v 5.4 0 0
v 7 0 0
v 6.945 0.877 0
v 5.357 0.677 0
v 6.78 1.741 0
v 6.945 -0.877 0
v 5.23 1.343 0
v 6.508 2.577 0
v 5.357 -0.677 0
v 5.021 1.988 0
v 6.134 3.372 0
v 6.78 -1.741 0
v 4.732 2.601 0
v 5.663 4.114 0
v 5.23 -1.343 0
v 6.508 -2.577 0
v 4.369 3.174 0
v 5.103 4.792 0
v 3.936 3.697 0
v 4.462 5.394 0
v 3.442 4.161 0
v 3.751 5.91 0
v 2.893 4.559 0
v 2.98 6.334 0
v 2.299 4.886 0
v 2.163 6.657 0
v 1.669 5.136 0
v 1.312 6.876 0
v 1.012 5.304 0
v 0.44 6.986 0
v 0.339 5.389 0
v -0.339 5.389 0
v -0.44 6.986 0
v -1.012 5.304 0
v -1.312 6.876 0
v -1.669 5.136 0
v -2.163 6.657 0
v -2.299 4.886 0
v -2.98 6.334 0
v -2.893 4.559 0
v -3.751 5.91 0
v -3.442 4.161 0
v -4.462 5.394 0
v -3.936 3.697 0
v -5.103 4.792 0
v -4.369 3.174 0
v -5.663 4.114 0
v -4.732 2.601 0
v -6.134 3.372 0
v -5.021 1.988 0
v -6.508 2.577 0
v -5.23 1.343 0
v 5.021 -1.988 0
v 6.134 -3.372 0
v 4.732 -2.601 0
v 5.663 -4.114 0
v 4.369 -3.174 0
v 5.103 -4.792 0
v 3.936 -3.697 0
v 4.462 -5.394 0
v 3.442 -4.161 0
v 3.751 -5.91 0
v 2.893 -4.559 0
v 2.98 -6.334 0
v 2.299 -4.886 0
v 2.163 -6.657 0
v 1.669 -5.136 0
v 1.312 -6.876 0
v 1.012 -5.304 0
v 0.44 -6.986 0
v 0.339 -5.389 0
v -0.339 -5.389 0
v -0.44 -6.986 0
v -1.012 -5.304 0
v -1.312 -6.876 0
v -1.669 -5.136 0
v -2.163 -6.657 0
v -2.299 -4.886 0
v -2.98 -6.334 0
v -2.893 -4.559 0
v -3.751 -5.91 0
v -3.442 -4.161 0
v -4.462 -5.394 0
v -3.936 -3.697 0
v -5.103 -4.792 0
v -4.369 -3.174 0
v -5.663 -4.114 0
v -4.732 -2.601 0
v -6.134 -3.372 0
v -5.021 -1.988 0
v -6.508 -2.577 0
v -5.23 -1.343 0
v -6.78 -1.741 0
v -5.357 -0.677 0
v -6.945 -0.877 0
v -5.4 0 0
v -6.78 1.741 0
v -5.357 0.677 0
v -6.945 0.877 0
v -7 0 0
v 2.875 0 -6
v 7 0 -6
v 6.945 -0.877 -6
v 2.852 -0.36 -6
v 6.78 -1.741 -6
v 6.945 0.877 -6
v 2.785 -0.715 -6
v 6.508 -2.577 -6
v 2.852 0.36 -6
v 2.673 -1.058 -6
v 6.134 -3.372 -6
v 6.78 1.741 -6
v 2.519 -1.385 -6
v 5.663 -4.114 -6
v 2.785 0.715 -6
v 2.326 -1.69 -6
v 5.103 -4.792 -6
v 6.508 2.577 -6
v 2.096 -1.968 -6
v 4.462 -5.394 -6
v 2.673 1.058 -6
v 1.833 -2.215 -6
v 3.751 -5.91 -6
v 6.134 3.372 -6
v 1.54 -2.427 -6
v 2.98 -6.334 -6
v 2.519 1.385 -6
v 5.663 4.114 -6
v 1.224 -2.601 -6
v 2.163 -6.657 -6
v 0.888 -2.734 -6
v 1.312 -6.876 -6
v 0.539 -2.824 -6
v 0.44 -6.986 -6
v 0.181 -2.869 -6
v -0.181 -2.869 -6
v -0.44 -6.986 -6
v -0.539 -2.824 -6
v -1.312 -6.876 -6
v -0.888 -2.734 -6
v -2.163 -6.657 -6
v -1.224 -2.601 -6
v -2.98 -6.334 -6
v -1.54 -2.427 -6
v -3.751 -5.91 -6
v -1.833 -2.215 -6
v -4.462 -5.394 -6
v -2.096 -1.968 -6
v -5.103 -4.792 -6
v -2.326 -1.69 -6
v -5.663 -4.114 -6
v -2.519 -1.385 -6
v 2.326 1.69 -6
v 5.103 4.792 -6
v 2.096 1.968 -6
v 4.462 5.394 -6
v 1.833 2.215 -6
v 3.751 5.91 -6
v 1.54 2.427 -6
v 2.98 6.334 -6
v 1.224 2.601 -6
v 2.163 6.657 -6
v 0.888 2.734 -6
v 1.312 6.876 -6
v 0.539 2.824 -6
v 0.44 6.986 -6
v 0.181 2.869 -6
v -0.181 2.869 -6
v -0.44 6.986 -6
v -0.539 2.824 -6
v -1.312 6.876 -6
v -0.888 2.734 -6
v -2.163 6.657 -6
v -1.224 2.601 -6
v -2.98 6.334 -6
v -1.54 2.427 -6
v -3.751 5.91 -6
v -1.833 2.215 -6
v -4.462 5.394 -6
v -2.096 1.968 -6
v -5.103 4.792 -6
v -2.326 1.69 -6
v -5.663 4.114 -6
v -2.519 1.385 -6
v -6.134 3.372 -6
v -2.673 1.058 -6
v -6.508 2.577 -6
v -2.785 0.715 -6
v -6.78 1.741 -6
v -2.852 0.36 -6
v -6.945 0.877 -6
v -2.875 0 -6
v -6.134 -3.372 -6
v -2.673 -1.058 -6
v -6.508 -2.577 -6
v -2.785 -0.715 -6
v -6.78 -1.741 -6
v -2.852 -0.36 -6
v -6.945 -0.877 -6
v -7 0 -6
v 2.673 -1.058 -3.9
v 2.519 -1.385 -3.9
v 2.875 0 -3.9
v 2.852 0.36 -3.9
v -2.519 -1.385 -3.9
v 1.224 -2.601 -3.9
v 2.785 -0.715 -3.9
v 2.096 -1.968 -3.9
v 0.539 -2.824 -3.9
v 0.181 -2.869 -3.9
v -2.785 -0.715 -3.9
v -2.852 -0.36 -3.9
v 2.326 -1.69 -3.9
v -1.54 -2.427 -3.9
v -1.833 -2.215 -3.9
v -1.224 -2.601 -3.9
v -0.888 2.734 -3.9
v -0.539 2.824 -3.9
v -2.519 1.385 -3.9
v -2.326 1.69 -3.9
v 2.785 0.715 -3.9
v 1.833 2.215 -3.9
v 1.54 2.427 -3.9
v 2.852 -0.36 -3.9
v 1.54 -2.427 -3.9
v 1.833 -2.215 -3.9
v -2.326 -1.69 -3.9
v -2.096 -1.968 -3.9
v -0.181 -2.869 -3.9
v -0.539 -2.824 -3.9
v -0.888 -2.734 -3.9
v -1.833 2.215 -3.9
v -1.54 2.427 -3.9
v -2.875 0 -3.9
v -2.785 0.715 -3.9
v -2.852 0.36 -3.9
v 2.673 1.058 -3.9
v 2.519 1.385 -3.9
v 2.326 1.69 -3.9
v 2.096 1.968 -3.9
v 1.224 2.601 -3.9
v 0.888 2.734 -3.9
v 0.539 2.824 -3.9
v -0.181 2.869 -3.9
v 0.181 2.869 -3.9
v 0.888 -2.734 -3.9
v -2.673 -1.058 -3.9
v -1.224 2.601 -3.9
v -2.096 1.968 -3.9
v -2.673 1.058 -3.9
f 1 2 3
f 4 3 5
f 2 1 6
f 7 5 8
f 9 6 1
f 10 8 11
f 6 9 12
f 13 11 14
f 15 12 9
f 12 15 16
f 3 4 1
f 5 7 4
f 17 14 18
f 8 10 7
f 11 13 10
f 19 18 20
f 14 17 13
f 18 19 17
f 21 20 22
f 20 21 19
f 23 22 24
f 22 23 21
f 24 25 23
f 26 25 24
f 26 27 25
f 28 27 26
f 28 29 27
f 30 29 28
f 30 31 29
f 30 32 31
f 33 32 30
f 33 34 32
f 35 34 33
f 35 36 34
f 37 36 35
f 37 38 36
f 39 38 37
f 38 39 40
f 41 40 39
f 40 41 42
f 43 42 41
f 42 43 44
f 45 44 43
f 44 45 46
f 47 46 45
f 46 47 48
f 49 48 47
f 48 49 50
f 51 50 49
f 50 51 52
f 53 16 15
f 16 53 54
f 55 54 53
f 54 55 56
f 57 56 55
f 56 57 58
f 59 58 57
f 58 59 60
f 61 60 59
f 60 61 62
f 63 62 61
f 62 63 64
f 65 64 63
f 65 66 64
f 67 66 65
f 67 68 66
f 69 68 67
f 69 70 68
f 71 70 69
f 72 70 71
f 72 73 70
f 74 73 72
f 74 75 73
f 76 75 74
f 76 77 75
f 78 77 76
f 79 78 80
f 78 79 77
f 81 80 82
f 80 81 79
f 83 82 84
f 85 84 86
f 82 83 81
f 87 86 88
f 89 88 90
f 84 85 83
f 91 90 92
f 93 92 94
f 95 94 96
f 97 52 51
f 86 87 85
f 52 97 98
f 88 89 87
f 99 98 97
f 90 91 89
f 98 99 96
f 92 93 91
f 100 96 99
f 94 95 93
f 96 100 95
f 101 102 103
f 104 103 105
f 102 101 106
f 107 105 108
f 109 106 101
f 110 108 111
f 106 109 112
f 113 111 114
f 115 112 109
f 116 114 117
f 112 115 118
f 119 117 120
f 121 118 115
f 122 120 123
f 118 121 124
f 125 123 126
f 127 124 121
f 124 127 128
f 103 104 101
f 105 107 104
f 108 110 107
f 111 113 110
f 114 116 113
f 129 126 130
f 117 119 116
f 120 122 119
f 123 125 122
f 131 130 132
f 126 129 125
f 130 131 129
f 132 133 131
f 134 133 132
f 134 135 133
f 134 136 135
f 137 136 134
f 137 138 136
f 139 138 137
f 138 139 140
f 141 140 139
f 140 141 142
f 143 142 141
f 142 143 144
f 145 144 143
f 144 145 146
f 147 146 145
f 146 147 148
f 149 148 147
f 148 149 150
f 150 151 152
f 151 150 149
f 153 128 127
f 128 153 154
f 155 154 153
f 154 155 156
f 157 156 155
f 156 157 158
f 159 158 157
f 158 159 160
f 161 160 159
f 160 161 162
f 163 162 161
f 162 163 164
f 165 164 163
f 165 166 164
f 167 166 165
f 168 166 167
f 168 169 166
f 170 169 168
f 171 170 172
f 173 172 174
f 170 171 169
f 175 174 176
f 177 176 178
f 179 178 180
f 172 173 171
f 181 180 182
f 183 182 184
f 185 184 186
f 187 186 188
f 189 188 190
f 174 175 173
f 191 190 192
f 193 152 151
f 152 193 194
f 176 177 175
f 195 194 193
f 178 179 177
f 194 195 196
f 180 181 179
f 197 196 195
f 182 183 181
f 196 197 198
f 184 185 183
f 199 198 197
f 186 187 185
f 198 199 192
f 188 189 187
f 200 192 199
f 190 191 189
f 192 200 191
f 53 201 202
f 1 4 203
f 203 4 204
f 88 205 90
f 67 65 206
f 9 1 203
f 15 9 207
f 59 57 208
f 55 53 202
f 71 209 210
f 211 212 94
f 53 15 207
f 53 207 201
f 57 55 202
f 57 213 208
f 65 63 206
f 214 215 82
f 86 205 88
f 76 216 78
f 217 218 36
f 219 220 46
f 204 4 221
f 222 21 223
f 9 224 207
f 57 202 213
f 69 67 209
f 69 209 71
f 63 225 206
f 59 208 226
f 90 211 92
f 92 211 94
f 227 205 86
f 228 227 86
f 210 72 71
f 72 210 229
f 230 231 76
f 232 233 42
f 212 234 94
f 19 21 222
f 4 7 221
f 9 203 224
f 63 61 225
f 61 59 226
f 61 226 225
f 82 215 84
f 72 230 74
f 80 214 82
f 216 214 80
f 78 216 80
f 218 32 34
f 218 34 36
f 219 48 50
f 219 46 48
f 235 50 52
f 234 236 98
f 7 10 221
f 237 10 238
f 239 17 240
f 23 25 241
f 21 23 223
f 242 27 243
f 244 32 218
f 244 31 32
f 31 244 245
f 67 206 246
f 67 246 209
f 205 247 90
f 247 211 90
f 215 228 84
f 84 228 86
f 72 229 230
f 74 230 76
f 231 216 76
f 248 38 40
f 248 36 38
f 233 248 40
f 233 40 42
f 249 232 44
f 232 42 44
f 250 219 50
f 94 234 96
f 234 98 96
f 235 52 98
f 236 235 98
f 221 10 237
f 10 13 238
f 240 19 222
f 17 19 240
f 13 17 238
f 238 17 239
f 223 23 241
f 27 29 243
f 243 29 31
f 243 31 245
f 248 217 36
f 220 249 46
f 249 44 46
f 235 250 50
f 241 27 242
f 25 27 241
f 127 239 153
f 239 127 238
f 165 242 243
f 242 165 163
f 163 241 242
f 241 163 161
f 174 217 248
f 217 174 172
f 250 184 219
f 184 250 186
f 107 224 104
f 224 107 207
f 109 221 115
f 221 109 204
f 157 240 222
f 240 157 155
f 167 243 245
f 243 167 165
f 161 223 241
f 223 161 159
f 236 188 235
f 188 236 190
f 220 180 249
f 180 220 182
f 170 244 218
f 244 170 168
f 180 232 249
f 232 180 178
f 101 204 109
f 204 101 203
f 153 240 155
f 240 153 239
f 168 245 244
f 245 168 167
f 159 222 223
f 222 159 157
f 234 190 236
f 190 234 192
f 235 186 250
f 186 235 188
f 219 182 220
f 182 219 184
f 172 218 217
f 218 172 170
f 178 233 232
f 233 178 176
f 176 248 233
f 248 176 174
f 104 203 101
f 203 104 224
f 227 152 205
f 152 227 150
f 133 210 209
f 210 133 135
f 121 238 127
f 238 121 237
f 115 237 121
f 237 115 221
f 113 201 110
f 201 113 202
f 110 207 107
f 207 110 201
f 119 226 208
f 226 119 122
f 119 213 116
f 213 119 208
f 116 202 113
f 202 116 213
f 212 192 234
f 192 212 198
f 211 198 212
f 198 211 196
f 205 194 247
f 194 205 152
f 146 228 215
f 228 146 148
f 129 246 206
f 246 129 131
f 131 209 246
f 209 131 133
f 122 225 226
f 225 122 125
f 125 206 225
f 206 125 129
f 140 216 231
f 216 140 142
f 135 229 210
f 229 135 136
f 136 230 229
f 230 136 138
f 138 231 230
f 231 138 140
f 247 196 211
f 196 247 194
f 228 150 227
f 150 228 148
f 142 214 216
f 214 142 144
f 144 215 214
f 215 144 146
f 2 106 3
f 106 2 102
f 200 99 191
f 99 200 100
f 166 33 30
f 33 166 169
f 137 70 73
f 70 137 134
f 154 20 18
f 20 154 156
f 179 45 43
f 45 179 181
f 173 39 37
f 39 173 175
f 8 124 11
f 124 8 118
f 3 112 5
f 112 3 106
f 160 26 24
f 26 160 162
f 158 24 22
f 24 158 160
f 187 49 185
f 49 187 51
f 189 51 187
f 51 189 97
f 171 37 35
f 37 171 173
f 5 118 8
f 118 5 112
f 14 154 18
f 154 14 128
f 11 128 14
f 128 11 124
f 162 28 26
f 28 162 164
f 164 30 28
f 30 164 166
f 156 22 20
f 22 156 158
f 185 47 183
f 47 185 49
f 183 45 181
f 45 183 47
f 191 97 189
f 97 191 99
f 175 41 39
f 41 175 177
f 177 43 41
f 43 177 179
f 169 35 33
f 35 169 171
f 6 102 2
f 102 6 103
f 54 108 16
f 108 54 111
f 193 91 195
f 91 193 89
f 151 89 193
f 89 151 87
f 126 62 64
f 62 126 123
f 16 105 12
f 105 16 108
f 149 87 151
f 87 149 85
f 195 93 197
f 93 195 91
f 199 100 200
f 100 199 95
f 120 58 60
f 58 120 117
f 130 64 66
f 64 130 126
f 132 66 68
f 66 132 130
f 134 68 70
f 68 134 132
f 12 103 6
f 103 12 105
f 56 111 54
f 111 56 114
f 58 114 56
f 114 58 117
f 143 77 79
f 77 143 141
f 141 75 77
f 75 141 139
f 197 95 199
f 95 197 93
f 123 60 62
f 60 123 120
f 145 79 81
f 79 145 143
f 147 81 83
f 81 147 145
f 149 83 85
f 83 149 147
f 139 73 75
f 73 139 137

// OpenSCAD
$fn = 50;


difference() {
	union() {
		translate(v = [0, 0, -6.0000000000]) {
			cylinder(h = 6, r = 7.0000000000);
		}
	}
	union() {
		translate(v = [0, 0, 0]) {
			rotate(a = [0, 0, 0]) {
				difference() {
					union() {
						#translate(v = [0, 0, -6.0000000000]) {
							cylinder(h = 6, r = 2.6000000000);
						}
						#translate(v = [0, 0, -3.9000000000]) {
							cylinder(h = 3.9000000000, r1 = 2.8750000000, r2 = 5.4000000000);
						}
						#translate(v = [0, 0, -6.0000000000]) {
							cylinder(h = 6, r = 2.8750000000);
						}
						#translate(v = [0, 0, -6.0000000000]) {
							cylinder(h = 6, r = 2.6000000000);
						}
					}
					union();
				}
			}
		}
	}
}
